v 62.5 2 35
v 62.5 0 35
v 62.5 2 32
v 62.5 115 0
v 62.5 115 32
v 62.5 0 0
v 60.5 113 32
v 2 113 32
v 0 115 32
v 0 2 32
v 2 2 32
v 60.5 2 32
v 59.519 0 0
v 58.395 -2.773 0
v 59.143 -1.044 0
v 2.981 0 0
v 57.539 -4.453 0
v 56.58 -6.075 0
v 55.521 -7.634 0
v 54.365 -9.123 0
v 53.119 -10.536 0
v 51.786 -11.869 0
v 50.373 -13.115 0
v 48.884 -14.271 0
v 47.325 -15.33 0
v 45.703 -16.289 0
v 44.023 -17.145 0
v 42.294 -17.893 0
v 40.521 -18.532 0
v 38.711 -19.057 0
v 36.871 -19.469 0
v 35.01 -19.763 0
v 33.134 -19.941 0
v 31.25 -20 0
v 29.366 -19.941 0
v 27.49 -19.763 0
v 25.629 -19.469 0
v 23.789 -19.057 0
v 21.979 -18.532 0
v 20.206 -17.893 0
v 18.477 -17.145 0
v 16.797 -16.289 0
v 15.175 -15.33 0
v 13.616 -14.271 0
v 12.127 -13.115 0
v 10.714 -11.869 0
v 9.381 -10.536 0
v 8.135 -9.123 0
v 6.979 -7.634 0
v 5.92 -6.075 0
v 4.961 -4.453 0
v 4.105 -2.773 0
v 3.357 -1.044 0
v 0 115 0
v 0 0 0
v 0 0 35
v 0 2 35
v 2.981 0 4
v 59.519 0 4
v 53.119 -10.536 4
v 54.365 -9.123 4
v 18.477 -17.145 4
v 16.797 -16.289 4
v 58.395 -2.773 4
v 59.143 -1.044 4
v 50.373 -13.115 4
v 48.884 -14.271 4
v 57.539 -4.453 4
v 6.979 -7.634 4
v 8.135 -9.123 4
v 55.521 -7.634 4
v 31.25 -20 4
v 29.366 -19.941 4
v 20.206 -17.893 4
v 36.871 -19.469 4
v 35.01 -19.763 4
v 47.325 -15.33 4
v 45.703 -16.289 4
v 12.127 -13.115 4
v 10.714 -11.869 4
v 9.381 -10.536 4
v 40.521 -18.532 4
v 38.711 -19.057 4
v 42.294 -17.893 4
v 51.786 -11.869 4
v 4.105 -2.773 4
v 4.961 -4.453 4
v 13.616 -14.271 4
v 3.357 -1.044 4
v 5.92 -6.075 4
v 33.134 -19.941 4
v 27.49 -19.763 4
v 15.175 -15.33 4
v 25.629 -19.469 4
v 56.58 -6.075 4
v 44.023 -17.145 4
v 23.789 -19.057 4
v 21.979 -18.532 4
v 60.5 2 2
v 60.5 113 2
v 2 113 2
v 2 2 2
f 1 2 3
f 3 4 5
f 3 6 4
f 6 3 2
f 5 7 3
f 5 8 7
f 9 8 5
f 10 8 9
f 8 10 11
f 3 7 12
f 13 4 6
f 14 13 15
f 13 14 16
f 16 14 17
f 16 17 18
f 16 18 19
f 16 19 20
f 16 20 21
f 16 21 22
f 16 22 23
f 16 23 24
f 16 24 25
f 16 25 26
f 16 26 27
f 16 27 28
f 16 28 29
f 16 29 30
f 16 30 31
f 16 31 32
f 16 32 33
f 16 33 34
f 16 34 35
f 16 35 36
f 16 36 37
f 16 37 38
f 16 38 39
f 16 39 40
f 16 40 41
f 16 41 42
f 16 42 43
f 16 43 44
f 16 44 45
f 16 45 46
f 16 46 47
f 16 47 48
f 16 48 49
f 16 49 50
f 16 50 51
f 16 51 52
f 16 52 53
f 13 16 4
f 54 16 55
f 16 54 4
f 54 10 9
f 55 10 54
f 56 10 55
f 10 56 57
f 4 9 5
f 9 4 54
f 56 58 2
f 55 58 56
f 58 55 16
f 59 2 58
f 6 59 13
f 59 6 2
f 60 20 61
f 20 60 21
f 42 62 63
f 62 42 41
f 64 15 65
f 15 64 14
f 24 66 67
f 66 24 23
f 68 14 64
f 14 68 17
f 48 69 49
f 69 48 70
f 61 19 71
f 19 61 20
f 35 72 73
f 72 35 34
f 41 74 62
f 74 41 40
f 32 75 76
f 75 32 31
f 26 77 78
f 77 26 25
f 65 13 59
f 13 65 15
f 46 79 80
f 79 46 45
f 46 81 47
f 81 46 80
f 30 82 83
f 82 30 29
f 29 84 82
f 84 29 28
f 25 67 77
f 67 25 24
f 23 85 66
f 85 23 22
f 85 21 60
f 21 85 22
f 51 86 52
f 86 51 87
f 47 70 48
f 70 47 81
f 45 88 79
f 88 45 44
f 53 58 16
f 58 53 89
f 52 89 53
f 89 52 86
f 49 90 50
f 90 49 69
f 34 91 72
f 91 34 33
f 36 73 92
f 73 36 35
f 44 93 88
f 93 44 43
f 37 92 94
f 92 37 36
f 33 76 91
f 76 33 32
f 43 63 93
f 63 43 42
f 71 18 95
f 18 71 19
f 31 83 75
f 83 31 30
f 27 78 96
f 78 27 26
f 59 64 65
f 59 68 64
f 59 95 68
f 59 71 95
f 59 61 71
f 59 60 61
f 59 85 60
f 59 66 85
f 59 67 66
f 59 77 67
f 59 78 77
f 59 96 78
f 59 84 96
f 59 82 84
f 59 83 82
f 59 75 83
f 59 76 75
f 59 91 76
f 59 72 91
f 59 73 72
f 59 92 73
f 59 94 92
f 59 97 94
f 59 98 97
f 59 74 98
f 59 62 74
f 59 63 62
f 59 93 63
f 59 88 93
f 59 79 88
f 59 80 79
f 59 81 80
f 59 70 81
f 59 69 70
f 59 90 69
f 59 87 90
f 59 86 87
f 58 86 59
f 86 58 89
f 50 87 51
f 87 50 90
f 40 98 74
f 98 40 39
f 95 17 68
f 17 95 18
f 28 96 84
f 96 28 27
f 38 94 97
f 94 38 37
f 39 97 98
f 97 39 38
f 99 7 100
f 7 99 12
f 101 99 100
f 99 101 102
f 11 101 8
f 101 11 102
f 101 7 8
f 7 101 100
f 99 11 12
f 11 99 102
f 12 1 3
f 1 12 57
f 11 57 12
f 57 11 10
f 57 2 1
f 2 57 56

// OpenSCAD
h1 = 32.0;
h2 = 35.0;
lg = 115.0;
wi = 62.5;
$fn = 100;

union() {
    difference(){
        union() {
            cube([wi, lg, h1], center = false);
            translate([wi/2, 10, 0]) {
                cylinder(h=4, r=30, center = false);
            }
        }
        translate([2,2,2]){
            cube([wi-4, lg-4, h1], center = false);
        }
    };
    cube([wi, 2, h2], center = false);
};
